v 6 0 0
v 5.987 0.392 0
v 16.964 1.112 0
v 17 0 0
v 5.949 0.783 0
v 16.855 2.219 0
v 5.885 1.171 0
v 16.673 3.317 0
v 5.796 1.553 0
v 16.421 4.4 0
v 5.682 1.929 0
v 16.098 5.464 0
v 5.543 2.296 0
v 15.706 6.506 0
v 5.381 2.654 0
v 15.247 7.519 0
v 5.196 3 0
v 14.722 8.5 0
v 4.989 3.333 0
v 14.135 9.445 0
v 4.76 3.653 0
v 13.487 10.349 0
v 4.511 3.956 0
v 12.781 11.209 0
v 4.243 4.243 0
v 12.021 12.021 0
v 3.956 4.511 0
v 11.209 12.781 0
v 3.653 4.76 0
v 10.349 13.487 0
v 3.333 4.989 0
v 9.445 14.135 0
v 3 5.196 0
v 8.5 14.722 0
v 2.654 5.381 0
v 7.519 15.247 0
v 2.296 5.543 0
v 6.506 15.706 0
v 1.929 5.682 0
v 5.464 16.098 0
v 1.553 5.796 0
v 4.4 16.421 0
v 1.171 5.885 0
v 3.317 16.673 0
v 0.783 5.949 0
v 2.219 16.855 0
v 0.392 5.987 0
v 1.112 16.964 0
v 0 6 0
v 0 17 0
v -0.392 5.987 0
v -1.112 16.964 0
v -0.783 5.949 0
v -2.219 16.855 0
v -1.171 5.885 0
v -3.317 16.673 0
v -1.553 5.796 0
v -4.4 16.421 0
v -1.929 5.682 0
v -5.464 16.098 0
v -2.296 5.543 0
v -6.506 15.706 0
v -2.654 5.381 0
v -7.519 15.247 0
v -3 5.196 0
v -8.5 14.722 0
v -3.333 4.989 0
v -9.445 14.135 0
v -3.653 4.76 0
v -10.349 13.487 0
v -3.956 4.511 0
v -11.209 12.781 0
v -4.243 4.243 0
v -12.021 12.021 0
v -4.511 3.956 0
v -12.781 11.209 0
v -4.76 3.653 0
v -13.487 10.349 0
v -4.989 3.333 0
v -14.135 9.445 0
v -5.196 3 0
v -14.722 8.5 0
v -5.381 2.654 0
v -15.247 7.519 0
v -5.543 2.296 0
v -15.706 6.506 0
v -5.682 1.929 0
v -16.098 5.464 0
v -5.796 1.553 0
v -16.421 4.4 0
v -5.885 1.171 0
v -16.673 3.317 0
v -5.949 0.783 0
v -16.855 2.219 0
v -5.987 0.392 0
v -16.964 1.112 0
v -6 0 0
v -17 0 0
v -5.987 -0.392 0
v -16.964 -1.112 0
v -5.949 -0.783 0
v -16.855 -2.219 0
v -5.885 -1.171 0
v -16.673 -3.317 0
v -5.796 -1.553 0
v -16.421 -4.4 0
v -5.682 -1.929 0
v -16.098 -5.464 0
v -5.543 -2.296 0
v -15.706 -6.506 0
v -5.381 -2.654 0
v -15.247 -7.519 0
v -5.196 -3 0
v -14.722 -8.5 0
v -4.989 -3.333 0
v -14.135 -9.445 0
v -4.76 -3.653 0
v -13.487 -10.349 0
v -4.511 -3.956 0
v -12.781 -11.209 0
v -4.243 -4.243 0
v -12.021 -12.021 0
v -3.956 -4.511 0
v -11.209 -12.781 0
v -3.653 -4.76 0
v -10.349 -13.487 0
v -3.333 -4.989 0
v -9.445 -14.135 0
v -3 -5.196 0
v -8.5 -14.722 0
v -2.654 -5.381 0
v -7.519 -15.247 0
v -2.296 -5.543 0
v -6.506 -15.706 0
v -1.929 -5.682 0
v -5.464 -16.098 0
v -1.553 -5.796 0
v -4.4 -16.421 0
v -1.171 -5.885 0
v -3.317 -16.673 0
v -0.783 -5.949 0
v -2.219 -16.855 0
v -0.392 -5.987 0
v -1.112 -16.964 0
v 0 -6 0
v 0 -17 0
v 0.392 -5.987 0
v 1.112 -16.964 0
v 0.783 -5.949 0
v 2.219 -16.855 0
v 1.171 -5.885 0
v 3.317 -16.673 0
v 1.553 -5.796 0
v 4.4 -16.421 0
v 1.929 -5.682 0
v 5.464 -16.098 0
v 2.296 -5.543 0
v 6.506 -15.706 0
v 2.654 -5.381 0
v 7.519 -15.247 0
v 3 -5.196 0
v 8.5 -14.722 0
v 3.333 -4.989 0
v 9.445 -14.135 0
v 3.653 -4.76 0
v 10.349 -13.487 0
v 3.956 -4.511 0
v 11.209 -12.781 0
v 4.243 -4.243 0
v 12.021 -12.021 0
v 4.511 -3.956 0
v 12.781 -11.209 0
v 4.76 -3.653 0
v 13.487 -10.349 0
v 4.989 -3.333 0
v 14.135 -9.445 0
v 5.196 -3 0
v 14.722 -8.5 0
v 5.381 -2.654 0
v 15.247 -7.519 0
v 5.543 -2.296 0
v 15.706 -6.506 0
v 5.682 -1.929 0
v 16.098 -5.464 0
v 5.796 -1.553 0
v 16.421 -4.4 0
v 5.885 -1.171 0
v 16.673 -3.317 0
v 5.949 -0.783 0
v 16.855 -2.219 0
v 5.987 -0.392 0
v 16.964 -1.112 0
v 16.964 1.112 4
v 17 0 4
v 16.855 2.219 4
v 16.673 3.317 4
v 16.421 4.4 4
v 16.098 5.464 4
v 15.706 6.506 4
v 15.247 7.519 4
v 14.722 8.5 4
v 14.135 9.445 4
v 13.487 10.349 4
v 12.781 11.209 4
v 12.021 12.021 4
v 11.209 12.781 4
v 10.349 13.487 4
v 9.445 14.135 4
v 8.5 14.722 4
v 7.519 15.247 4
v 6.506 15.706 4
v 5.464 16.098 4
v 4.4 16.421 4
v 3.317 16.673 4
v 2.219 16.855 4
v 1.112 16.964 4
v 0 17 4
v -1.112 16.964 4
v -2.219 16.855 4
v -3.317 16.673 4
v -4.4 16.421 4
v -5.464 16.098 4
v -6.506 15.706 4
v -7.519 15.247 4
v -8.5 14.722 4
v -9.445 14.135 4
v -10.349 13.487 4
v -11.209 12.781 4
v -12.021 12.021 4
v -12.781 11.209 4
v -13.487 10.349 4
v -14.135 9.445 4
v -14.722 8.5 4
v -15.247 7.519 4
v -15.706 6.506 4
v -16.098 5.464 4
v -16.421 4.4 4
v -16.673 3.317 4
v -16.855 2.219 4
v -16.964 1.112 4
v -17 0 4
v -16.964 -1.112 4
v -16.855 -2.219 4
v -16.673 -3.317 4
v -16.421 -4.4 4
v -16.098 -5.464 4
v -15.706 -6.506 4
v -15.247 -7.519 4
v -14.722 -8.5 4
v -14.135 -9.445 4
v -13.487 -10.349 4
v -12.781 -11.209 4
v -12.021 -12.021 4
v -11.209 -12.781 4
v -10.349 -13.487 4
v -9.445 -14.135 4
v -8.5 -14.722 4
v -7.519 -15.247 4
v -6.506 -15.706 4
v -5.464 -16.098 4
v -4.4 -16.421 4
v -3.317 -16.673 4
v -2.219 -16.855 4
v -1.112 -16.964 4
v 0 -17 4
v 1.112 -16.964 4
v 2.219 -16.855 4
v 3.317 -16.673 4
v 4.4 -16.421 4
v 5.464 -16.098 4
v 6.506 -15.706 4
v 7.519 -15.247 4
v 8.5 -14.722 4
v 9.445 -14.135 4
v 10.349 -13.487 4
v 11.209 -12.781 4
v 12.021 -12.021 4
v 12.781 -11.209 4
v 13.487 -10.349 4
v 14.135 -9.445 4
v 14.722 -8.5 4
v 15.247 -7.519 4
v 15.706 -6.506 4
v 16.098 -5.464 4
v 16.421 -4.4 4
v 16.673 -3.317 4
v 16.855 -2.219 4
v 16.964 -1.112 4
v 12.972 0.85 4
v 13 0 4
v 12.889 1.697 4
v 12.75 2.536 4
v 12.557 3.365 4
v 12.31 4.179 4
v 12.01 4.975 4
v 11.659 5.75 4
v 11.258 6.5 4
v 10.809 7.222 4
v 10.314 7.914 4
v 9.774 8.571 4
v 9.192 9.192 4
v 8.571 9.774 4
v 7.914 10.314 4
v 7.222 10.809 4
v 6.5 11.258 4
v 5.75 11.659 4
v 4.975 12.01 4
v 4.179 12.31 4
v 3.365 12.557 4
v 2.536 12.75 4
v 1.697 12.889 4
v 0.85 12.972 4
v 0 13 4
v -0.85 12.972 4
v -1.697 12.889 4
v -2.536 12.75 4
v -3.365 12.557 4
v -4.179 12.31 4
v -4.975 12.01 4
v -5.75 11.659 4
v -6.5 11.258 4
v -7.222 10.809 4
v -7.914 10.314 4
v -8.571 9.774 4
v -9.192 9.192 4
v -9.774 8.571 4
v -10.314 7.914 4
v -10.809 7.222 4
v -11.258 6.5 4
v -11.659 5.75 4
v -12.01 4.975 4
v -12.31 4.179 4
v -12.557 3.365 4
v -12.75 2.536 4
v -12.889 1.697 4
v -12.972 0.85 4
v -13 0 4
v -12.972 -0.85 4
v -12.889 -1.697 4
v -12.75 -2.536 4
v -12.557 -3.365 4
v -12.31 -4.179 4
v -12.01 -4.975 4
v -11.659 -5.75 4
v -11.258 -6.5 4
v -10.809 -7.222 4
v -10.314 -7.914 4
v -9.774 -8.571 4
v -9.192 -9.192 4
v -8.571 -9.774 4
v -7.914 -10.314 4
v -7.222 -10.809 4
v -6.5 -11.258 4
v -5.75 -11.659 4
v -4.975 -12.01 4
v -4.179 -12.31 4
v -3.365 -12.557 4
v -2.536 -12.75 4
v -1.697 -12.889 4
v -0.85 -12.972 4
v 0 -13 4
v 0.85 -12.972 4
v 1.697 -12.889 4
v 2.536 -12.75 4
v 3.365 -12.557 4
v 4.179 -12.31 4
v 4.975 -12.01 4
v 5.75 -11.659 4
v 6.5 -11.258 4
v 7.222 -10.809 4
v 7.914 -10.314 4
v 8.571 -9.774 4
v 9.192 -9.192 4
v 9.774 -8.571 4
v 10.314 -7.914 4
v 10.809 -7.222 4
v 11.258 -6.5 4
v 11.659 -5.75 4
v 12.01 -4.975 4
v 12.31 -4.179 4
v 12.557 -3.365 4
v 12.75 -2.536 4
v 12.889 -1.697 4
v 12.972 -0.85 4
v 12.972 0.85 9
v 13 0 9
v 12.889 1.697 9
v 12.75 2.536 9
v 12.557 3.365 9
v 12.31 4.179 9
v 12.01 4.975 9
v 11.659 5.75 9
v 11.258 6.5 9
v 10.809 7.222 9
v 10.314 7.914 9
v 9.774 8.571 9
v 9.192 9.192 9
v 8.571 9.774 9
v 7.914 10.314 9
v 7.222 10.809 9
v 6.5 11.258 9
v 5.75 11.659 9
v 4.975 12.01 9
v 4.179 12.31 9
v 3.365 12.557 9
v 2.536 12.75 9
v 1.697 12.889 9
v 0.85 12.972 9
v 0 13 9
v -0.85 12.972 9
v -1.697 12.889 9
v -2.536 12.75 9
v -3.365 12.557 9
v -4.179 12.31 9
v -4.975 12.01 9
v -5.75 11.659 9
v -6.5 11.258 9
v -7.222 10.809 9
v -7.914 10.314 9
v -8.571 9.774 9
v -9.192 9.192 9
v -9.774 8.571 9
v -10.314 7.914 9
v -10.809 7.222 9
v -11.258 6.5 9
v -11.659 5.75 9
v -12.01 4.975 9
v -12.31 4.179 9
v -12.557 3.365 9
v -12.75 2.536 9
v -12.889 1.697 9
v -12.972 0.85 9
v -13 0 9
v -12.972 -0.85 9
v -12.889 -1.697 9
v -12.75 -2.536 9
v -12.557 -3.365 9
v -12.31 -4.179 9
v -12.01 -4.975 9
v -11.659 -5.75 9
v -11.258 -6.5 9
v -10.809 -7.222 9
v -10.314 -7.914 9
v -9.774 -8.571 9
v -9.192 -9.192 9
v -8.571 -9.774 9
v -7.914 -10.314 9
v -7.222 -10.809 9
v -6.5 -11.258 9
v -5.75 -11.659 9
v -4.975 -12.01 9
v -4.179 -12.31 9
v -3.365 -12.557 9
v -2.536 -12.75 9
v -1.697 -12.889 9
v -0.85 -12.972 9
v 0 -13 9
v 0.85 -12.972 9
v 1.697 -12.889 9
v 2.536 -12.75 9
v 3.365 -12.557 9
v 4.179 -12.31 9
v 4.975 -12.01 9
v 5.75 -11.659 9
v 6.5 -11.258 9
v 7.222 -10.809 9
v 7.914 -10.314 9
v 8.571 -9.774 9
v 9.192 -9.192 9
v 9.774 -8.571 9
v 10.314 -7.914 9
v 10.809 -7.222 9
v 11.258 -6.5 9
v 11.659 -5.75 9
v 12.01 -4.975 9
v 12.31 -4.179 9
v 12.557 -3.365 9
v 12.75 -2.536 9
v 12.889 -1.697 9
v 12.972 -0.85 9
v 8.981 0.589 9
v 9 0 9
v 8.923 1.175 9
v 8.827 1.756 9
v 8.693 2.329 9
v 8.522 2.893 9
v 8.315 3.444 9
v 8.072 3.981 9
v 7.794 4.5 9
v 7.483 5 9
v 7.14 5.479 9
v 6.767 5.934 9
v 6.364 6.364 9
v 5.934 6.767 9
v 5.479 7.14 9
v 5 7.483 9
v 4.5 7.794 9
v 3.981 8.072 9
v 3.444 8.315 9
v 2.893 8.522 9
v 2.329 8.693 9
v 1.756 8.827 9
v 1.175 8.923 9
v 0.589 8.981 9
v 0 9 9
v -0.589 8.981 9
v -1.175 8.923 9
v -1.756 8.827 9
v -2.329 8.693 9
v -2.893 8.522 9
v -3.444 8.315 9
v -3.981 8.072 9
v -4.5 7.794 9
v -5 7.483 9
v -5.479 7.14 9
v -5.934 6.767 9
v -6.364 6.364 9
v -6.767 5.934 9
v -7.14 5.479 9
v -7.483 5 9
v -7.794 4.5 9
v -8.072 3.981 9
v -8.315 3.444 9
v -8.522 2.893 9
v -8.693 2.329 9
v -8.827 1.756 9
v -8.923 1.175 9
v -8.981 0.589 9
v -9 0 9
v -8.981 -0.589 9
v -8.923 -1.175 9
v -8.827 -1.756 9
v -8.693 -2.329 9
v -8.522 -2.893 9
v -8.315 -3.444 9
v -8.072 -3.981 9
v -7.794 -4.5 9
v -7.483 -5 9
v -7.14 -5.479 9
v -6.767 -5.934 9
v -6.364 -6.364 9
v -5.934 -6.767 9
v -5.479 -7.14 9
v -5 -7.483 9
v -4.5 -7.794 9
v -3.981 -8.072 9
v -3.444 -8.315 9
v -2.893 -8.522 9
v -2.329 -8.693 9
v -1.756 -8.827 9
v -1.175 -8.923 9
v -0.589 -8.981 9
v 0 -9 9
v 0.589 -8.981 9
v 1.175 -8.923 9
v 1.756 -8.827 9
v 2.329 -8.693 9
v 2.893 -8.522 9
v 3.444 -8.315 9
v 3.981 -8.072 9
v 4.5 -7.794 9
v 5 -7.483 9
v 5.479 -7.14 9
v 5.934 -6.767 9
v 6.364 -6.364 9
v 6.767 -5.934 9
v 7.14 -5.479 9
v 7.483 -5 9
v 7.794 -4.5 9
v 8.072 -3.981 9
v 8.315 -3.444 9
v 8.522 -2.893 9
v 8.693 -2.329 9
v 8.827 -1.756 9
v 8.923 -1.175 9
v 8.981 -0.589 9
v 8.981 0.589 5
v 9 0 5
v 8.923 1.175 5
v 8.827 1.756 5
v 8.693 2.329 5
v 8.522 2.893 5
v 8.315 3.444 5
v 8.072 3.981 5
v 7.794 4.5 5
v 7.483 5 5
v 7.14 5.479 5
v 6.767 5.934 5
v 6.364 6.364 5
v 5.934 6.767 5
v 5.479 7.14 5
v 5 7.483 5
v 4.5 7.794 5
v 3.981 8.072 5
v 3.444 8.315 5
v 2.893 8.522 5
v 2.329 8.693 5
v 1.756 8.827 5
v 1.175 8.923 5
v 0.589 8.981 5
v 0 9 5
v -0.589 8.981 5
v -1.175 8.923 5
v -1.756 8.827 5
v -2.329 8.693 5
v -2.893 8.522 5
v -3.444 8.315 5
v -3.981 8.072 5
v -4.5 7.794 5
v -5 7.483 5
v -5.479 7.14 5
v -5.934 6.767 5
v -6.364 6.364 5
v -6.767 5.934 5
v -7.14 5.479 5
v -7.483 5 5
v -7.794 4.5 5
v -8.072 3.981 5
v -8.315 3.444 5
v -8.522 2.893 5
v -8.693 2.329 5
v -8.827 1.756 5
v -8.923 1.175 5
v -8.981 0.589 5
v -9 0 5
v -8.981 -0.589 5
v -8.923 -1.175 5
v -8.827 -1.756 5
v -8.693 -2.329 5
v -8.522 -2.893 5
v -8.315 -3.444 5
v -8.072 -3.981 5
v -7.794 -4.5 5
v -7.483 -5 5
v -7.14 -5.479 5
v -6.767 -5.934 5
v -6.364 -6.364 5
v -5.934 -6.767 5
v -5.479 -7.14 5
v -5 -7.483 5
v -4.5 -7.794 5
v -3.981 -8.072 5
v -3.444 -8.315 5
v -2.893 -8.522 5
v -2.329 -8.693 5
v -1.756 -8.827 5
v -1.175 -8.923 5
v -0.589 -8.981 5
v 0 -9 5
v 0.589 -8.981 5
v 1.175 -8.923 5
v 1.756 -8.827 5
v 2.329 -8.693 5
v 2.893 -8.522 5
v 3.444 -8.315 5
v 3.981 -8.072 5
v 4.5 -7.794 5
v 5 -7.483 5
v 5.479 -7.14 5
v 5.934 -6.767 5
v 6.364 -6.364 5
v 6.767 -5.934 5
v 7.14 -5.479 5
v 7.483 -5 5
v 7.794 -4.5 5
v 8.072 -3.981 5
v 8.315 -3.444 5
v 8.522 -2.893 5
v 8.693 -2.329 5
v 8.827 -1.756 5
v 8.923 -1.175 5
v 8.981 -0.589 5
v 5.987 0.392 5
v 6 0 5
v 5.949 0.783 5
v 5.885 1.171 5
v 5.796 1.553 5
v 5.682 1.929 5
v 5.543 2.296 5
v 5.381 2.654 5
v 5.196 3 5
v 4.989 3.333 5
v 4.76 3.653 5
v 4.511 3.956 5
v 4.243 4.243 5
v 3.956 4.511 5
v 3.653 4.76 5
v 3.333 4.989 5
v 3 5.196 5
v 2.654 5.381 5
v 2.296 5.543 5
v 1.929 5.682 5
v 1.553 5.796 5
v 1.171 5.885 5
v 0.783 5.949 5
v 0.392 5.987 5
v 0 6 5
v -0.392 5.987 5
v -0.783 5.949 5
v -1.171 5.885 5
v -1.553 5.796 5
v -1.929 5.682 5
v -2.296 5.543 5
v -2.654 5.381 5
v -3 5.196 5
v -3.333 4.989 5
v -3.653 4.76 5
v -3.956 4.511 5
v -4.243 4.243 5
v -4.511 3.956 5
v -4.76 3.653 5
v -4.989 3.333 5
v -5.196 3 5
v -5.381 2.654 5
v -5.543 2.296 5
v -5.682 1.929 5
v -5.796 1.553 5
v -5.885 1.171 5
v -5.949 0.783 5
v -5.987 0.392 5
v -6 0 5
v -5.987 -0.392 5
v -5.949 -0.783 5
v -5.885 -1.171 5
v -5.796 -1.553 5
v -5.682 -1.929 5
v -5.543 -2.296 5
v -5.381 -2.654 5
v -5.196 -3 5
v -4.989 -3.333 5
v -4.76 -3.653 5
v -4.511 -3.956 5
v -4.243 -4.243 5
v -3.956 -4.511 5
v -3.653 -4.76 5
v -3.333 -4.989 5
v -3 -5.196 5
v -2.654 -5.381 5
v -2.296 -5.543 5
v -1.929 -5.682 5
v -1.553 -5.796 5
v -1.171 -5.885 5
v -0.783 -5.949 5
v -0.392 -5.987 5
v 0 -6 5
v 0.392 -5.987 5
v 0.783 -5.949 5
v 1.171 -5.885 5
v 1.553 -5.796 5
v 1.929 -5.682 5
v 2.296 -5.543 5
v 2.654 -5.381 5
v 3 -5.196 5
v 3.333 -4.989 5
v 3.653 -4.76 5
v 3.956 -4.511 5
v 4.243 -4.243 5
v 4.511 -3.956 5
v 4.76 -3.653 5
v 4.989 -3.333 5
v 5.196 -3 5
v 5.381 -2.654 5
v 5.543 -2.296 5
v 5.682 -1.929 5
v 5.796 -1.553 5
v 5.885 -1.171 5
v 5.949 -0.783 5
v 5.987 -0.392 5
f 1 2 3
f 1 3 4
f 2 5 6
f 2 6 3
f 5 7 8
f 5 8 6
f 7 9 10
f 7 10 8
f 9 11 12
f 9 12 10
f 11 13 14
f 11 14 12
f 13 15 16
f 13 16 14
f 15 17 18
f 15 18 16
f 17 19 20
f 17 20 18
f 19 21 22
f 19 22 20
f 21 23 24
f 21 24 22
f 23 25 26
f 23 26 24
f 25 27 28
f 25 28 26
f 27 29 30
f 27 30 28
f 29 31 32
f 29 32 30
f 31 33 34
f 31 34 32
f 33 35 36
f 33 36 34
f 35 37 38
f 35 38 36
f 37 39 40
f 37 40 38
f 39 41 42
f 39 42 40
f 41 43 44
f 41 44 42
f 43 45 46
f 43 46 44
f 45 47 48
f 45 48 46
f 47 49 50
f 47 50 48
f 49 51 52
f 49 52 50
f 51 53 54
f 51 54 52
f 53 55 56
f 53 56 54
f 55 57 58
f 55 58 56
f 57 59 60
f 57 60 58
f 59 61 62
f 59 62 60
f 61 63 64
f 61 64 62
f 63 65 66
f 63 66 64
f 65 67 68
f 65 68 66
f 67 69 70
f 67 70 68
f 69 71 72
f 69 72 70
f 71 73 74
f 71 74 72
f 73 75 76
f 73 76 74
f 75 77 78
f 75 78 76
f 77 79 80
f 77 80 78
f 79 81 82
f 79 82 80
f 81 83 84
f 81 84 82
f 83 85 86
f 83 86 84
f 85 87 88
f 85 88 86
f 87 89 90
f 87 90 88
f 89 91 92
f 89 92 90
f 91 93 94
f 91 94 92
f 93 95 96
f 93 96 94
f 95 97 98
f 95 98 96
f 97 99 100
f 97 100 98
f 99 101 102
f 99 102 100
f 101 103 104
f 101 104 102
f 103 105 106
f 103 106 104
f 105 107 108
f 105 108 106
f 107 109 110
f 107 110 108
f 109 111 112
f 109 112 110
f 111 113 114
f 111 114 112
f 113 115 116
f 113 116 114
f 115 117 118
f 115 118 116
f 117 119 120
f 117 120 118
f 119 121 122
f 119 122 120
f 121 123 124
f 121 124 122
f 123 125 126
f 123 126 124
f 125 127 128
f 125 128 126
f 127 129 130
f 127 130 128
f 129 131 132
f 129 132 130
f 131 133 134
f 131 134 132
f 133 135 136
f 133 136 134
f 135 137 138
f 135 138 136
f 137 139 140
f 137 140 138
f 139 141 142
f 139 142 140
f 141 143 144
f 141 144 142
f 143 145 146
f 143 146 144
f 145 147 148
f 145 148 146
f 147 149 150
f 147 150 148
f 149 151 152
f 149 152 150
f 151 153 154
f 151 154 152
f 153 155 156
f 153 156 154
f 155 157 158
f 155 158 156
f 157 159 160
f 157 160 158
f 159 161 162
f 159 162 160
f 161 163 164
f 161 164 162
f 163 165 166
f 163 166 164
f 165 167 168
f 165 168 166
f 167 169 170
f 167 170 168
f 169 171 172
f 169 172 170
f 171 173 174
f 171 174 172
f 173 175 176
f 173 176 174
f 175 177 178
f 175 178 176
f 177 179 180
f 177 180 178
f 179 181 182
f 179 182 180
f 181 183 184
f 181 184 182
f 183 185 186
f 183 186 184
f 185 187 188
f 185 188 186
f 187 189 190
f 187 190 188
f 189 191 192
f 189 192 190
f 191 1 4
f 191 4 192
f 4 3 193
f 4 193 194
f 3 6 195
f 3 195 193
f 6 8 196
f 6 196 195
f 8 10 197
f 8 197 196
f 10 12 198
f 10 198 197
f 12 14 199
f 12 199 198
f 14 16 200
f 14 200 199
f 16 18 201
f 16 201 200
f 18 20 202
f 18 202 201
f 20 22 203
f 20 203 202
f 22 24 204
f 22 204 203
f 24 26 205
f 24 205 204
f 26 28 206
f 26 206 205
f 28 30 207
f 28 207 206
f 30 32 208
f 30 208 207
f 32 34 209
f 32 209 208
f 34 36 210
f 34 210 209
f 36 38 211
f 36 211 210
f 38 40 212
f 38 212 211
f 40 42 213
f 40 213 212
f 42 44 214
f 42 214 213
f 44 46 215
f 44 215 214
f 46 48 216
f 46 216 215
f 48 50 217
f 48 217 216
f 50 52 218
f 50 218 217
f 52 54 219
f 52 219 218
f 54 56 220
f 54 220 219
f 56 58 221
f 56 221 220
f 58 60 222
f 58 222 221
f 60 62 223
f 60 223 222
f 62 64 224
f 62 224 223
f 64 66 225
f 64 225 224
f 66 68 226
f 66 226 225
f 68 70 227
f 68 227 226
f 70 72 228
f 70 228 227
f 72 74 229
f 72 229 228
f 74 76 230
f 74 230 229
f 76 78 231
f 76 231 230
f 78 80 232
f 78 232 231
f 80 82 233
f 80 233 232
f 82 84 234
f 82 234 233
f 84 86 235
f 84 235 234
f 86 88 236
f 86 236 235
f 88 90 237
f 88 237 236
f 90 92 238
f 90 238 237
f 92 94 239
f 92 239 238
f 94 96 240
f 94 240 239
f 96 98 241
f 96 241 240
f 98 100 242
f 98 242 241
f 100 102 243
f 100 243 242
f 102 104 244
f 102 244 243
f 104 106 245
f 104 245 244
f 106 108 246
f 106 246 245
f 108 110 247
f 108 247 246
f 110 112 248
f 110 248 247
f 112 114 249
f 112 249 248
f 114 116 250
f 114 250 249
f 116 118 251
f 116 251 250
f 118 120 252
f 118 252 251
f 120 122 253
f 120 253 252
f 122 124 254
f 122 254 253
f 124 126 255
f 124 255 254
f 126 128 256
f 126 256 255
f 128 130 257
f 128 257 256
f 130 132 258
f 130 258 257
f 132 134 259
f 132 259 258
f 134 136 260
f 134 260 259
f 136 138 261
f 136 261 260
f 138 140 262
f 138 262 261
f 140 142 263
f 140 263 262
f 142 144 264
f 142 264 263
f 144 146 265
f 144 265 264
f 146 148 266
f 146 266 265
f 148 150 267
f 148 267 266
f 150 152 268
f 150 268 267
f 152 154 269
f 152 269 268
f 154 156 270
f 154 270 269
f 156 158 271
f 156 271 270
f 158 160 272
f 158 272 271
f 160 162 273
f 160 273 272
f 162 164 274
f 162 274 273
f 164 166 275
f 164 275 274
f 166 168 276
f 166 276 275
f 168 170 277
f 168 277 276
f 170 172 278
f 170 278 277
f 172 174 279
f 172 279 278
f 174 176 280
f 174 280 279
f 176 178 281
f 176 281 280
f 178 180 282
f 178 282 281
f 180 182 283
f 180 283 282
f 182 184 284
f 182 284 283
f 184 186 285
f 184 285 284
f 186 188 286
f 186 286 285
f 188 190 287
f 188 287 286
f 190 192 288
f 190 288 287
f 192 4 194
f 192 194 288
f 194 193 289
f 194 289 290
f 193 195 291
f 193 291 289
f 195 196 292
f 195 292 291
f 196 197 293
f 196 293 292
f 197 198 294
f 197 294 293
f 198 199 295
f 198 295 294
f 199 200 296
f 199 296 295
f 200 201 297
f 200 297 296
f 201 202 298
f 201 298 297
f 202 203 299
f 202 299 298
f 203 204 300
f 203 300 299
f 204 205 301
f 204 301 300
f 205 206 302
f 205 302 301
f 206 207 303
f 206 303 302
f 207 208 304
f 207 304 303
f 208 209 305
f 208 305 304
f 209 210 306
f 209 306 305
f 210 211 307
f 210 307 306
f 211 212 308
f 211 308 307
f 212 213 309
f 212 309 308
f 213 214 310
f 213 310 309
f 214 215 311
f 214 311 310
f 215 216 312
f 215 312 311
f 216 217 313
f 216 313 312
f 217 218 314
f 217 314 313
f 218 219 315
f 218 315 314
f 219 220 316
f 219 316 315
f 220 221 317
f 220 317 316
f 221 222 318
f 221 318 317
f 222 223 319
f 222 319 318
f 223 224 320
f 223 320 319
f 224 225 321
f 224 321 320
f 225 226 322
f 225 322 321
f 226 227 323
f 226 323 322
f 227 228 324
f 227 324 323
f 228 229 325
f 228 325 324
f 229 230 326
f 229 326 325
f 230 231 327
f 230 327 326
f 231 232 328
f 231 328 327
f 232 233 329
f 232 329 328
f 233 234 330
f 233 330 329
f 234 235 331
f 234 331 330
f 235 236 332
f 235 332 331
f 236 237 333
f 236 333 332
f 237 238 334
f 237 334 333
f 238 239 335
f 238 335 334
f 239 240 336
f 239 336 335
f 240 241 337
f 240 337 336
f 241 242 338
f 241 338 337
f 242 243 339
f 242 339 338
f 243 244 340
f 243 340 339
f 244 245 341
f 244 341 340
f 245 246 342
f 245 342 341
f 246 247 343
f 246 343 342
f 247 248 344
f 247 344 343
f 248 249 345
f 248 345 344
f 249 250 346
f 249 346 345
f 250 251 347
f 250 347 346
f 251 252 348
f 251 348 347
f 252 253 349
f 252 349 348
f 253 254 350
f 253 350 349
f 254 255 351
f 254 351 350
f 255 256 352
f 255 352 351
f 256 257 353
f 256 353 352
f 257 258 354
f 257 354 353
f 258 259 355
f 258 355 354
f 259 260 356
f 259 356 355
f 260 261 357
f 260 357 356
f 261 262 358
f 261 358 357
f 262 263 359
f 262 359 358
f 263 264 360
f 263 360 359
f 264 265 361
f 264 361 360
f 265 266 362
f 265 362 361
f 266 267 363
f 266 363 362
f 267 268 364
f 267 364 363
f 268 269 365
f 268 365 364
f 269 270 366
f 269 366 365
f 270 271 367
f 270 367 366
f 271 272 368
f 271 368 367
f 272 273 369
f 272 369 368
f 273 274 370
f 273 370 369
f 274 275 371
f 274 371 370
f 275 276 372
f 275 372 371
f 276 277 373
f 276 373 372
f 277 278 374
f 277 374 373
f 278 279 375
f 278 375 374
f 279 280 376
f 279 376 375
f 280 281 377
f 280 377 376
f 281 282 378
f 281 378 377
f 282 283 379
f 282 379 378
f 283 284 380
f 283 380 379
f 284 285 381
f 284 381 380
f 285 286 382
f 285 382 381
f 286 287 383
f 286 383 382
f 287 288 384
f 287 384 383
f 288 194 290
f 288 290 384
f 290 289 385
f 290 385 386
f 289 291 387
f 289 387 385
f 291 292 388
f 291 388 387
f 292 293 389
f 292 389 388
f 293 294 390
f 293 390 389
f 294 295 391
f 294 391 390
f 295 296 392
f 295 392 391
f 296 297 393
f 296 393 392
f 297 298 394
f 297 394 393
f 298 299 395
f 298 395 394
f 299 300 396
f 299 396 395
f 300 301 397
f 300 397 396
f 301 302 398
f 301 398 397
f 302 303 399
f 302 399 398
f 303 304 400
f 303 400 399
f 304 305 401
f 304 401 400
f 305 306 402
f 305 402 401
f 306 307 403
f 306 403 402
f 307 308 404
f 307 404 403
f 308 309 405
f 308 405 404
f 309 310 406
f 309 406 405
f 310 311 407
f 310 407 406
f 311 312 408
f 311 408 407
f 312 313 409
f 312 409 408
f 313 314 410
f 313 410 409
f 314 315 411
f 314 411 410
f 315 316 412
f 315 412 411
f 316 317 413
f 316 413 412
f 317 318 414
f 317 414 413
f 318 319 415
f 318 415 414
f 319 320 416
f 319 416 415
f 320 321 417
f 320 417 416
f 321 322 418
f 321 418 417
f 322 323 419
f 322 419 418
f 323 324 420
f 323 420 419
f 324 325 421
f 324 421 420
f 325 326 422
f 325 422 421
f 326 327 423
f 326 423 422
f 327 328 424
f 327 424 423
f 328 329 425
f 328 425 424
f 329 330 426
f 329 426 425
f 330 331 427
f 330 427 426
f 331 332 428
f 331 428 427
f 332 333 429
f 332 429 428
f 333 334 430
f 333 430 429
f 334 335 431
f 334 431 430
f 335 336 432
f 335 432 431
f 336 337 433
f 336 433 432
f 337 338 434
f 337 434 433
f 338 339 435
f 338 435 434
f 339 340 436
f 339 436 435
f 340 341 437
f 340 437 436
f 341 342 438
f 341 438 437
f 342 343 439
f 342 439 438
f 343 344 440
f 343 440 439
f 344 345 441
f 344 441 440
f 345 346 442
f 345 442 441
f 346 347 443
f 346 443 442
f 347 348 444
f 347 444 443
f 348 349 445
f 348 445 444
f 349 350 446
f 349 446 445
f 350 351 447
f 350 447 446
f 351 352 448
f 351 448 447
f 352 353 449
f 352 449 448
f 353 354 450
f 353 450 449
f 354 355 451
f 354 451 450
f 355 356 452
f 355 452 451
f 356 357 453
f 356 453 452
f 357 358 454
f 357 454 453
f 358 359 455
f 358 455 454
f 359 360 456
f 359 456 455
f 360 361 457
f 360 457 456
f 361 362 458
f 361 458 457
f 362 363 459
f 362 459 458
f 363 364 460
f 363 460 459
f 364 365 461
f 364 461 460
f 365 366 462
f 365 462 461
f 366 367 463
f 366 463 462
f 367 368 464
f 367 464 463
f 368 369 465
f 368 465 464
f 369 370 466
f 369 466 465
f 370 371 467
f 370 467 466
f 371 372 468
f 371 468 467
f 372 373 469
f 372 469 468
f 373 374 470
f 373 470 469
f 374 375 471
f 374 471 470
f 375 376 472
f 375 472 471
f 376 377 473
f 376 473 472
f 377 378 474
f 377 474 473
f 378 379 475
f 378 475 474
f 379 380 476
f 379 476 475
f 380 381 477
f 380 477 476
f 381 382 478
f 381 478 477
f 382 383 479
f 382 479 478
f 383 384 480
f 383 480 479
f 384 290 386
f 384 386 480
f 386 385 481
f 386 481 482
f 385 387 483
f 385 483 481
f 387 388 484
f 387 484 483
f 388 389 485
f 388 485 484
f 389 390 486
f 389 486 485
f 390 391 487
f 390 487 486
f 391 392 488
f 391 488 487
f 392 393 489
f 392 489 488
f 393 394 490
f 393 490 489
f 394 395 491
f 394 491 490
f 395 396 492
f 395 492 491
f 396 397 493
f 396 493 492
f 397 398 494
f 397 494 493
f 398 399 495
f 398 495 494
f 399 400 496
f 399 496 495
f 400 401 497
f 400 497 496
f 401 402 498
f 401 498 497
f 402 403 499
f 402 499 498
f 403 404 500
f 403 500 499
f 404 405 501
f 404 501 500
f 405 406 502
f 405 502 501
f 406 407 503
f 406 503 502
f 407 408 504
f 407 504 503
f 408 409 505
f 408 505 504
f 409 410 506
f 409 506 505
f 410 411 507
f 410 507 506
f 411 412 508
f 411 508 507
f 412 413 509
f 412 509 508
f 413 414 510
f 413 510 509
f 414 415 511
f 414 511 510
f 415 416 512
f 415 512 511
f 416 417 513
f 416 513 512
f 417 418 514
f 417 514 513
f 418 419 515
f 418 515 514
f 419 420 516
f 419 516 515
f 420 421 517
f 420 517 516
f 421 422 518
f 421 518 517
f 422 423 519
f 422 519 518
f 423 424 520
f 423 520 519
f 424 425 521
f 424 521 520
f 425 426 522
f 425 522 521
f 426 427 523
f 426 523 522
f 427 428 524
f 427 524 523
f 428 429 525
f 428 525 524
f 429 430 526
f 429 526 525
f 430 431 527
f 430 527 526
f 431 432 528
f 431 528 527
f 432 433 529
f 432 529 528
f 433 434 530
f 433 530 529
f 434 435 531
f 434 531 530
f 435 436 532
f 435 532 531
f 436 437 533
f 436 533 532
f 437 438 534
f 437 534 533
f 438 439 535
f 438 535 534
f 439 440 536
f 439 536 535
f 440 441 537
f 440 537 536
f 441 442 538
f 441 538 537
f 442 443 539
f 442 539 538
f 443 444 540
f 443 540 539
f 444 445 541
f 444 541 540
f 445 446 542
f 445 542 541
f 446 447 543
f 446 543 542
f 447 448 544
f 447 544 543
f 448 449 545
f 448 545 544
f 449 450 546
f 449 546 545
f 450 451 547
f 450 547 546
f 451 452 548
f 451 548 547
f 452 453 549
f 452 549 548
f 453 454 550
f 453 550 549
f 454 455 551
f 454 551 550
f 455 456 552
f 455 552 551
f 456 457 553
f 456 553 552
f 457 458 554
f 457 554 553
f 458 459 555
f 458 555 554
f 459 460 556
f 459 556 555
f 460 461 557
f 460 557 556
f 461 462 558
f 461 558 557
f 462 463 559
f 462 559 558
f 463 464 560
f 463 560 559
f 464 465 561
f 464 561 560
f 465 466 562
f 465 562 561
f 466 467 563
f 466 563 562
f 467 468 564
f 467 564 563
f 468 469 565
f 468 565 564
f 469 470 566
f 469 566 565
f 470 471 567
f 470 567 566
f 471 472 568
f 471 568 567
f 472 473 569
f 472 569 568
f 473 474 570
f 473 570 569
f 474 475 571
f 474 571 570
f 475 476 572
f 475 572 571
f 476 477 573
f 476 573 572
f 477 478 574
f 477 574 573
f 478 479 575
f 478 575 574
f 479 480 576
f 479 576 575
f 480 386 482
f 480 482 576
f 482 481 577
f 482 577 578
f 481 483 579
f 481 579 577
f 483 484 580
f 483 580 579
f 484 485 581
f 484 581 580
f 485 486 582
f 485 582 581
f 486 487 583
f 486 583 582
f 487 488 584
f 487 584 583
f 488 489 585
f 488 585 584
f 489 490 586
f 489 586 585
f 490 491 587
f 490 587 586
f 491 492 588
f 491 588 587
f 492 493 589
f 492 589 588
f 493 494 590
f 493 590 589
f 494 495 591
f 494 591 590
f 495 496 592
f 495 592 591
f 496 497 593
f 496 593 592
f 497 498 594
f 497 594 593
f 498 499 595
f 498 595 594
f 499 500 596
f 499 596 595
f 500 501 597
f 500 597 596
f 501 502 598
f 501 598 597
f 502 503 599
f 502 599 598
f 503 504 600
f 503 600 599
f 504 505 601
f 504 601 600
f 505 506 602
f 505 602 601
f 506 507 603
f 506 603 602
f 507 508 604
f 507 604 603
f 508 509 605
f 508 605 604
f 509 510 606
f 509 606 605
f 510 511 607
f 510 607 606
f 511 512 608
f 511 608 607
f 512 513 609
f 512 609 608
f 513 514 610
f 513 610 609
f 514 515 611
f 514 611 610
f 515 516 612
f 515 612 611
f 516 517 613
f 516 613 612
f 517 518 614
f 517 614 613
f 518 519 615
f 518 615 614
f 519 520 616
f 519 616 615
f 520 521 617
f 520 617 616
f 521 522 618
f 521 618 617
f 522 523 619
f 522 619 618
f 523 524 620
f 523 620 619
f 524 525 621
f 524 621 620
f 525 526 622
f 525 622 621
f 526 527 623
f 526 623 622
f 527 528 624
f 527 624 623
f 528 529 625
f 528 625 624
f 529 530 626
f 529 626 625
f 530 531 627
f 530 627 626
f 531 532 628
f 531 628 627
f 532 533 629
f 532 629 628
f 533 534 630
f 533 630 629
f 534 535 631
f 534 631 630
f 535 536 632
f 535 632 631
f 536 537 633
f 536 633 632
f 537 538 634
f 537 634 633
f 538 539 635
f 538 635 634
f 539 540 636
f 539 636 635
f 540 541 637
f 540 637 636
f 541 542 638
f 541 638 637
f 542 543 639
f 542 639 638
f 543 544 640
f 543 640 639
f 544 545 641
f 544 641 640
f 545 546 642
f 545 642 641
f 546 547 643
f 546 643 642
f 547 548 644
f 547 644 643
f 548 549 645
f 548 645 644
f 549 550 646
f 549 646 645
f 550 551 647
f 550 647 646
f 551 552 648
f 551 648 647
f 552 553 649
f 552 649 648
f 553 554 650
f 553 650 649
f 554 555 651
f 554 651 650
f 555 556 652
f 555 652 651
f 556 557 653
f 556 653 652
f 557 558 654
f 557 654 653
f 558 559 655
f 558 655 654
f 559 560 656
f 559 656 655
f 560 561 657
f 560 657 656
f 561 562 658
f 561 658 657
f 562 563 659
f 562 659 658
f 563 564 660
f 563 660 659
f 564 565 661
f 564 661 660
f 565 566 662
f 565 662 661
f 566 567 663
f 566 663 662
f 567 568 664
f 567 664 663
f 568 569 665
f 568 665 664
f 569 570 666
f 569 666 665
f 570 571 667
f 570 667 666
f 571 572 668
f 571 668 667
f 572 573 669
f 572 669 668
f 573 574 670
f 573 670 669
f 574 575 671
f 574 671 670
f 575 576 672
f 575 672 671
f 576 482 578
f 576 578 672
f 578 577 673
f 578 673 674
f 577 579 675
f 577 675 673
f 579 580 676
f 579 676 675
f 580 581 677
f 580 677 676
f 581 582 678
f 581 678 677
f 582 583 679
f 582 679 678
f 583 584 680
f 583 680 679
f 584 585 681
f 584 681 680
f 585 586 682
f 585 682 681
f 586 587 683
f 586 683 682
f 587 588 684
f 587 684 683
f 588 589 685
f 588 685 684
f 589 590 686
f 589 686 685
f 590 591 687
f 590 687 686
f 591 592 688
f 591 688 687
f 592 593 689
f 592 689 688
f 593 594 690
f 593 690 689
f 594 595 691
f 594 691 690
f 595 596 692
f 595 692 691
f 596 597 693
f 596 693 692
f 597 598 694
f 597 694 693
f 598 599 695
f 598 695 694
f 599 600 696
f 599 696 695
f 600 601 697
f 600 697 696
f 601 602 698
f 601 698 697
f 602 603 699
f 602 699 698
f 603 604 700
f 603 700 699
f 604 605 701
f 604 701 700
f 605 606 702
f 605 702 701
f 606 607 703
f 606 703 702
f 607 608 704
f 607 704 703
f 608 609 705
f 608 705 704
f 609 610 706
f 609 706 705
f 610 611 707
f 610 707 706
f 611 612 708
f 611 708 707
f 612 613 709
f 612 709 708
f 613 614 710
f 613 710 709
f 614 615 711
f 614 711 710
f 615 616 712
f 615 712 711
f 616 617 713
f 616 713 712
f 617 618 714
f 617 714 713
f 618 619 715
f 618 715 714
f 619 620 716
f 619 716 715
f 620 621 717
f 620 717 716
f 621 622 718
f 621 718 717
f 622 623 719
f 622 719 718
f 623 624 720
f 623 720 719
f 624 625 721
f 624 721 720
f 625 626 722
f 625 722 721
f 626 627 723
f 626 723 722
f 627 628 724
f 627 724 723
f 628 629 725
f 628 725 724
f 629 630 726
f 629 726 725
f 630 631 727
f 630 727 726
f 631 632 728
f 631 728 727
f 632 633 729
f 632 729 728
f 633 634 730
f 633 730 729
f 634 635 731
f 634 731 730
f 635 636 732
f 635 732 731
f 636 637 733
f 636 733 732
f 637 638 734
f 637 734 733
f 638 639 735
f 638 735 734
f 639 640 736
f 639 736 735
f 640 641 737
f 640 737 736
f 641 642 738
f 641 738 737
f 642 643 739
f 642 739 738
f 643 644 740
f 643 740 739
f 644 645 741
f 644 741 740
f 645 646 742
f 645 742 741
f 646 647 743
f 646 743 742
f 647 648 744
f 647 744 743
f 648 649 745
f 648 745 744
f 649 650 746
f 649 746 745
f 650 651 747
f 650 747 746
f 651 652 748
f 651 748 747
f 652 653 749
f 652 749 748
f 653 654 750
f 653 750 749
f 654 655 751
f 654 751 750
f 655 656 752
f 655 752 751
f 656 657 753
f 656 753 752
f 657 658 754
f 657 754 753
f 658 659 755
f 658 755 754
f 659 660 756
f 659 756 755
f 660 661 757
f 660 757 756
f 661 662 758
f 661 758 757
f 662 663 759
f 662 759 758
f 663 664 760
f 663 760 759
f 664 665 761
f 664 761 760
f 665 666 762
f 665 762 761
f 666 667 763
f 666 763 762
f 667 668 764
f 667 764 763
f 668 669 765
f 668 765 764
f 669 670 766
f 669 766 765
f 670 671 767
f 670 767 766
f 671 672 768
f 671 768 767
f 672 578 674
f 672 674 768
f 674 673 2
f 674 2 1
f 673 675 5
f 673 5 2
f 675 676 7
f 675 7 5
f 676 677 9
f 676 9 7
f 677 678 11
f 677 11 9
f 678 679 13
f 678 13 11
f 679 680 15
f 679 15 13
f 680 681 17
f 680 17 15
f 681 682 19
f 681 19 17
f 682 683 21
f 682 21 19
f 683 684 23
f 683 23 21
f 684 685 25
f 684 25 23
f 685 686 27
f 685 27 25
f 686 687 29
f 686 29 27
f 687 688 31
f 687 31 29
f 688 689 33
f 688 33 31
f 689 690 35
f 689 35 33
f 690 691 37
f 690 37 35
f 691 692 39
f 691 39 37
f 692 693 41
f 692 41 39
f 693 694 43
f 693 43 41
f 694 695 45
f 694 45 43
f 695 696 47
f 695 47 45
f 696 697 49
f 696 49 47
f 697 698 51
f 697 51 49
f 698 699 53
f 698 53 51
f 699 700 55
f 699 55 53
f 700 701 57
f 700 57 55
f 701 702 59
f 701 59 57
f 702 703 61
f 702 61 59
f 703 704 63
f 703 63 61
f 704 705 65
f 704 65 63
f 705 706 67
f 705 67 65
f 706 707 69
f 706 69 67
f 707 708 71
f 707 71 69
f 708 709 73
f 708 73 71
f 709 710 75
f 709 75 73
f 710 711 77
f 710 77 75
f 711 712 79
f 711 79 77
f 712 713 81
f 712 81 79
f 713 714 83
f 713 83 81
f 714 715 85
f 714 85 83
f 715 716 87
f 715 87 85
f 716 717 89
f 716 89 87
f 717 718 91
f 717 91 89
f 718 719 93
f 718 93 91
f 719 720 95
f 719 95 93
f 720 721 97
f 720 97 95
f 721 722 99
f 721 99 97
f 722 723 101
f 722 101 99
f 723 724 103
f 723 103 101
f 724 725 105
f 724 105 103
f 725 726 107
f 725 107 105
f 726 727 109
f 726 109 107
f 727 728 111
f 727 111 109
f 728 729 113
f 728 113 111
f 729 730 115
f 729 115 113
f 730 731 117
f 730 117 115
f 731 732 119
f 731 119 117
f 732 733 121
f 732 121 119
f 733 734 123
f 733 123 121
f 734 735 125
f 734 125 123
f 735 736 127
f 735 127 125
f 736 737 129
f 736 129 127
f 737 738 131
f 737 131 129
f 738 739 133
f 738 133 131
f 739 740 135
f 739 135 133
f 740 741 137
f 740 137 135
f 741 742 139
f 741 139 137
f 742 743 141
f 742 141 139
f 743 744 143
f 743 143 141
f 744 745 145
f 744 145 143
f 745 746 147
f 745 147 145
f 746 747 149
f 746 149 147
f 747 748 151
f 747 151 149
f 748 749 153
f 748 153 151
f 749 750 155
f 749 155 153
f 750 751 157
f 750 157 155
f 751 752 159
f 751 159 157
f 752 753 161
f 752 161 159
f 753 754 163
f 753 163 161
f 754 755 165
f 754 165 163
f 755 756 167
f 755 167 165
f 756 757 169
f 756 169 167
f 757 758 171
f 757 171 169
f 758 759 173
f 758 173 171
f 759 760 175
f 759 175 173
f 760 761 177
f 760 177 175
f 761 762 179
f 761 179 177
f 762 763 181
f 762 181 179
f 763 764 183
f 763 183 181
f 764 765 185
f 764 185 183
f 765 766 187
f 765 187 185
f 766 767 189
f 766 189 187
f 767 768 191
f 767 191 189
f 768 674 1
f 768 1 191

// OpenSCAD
// Original MechIntel educational model. CC0-1.0. Units: mm.
// Not a standardized or load-rated component.
$fn=96;
// Section points: [radius, height], mm. Edit to change the profile.
section=[[6, 0], [17, 0], [17, 4], [13, 4], [13, 9], [9, 9], [9, 5], [6, 5]];
rotate_extrude($fn=96) polygon(points=section);
